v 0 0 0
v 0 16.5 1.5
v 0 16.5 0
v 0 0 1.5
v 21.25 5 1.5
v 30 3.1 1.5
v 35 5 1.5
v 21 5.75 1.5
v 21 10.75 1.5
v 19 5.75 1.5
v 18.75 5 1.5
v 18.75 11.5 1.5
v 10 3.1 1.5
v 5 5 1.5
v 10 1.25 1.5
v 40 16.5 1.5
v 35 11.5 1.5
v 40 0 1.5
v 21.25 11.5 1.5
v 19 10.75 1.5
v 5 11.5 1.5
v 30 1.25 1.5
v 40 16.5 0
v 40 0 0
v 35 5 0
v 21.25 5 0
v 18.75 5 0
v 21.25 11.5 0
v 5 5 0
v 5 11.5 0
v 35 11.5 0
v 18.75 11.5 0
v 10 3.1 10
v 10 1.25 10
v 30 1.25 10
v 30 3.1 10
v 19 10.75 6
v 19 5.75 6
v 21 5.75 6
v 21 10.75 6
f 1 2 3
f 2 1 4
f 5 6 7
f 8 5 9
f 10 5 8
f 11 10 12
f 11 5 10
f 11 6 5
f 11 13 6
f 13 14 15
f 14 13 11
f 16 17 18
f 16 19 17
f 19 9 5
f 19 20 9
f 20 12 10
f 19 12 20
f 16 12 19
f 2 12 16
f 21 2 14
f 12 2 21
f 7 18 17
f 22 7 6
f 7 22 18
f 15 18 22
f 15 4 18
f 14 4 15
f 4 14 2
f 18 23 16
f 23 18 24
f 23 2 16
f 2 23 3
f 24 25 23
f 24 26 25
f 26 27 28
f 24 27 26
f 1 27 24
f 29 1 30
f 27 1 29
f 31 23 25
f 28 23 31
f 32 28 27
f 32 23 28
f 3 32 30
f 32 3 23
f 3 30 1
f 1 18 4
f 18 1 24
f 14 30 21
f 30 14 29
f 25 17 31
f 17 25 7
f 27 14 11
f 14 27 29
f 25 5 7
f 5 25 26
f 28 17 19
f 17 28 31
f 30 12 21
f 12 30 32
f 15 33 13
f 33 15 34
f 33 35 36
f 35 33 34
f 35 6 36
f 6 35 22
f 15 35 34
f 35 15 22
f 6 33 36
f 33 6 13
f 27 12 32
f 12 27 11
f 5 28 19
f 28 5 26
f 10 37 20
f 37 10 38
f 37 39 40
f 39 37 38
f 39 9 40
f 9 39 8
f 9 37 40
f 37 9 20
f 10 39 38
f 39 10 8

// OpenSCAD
difference() {
cube([40,16.5,1.5]);
translate([5,5,0]) cube([30,6.5,1.5]);
}
//Bottom Insert
translate([10,1.25,0]) cube([20,1.85,10]);
//Between USBs
translate([20-2.5/2,4,0]) cube([2.5,10,1.5]);
//Post between USBs
translate([20-2/2,5.75,0]) cube([2,5,6]);
